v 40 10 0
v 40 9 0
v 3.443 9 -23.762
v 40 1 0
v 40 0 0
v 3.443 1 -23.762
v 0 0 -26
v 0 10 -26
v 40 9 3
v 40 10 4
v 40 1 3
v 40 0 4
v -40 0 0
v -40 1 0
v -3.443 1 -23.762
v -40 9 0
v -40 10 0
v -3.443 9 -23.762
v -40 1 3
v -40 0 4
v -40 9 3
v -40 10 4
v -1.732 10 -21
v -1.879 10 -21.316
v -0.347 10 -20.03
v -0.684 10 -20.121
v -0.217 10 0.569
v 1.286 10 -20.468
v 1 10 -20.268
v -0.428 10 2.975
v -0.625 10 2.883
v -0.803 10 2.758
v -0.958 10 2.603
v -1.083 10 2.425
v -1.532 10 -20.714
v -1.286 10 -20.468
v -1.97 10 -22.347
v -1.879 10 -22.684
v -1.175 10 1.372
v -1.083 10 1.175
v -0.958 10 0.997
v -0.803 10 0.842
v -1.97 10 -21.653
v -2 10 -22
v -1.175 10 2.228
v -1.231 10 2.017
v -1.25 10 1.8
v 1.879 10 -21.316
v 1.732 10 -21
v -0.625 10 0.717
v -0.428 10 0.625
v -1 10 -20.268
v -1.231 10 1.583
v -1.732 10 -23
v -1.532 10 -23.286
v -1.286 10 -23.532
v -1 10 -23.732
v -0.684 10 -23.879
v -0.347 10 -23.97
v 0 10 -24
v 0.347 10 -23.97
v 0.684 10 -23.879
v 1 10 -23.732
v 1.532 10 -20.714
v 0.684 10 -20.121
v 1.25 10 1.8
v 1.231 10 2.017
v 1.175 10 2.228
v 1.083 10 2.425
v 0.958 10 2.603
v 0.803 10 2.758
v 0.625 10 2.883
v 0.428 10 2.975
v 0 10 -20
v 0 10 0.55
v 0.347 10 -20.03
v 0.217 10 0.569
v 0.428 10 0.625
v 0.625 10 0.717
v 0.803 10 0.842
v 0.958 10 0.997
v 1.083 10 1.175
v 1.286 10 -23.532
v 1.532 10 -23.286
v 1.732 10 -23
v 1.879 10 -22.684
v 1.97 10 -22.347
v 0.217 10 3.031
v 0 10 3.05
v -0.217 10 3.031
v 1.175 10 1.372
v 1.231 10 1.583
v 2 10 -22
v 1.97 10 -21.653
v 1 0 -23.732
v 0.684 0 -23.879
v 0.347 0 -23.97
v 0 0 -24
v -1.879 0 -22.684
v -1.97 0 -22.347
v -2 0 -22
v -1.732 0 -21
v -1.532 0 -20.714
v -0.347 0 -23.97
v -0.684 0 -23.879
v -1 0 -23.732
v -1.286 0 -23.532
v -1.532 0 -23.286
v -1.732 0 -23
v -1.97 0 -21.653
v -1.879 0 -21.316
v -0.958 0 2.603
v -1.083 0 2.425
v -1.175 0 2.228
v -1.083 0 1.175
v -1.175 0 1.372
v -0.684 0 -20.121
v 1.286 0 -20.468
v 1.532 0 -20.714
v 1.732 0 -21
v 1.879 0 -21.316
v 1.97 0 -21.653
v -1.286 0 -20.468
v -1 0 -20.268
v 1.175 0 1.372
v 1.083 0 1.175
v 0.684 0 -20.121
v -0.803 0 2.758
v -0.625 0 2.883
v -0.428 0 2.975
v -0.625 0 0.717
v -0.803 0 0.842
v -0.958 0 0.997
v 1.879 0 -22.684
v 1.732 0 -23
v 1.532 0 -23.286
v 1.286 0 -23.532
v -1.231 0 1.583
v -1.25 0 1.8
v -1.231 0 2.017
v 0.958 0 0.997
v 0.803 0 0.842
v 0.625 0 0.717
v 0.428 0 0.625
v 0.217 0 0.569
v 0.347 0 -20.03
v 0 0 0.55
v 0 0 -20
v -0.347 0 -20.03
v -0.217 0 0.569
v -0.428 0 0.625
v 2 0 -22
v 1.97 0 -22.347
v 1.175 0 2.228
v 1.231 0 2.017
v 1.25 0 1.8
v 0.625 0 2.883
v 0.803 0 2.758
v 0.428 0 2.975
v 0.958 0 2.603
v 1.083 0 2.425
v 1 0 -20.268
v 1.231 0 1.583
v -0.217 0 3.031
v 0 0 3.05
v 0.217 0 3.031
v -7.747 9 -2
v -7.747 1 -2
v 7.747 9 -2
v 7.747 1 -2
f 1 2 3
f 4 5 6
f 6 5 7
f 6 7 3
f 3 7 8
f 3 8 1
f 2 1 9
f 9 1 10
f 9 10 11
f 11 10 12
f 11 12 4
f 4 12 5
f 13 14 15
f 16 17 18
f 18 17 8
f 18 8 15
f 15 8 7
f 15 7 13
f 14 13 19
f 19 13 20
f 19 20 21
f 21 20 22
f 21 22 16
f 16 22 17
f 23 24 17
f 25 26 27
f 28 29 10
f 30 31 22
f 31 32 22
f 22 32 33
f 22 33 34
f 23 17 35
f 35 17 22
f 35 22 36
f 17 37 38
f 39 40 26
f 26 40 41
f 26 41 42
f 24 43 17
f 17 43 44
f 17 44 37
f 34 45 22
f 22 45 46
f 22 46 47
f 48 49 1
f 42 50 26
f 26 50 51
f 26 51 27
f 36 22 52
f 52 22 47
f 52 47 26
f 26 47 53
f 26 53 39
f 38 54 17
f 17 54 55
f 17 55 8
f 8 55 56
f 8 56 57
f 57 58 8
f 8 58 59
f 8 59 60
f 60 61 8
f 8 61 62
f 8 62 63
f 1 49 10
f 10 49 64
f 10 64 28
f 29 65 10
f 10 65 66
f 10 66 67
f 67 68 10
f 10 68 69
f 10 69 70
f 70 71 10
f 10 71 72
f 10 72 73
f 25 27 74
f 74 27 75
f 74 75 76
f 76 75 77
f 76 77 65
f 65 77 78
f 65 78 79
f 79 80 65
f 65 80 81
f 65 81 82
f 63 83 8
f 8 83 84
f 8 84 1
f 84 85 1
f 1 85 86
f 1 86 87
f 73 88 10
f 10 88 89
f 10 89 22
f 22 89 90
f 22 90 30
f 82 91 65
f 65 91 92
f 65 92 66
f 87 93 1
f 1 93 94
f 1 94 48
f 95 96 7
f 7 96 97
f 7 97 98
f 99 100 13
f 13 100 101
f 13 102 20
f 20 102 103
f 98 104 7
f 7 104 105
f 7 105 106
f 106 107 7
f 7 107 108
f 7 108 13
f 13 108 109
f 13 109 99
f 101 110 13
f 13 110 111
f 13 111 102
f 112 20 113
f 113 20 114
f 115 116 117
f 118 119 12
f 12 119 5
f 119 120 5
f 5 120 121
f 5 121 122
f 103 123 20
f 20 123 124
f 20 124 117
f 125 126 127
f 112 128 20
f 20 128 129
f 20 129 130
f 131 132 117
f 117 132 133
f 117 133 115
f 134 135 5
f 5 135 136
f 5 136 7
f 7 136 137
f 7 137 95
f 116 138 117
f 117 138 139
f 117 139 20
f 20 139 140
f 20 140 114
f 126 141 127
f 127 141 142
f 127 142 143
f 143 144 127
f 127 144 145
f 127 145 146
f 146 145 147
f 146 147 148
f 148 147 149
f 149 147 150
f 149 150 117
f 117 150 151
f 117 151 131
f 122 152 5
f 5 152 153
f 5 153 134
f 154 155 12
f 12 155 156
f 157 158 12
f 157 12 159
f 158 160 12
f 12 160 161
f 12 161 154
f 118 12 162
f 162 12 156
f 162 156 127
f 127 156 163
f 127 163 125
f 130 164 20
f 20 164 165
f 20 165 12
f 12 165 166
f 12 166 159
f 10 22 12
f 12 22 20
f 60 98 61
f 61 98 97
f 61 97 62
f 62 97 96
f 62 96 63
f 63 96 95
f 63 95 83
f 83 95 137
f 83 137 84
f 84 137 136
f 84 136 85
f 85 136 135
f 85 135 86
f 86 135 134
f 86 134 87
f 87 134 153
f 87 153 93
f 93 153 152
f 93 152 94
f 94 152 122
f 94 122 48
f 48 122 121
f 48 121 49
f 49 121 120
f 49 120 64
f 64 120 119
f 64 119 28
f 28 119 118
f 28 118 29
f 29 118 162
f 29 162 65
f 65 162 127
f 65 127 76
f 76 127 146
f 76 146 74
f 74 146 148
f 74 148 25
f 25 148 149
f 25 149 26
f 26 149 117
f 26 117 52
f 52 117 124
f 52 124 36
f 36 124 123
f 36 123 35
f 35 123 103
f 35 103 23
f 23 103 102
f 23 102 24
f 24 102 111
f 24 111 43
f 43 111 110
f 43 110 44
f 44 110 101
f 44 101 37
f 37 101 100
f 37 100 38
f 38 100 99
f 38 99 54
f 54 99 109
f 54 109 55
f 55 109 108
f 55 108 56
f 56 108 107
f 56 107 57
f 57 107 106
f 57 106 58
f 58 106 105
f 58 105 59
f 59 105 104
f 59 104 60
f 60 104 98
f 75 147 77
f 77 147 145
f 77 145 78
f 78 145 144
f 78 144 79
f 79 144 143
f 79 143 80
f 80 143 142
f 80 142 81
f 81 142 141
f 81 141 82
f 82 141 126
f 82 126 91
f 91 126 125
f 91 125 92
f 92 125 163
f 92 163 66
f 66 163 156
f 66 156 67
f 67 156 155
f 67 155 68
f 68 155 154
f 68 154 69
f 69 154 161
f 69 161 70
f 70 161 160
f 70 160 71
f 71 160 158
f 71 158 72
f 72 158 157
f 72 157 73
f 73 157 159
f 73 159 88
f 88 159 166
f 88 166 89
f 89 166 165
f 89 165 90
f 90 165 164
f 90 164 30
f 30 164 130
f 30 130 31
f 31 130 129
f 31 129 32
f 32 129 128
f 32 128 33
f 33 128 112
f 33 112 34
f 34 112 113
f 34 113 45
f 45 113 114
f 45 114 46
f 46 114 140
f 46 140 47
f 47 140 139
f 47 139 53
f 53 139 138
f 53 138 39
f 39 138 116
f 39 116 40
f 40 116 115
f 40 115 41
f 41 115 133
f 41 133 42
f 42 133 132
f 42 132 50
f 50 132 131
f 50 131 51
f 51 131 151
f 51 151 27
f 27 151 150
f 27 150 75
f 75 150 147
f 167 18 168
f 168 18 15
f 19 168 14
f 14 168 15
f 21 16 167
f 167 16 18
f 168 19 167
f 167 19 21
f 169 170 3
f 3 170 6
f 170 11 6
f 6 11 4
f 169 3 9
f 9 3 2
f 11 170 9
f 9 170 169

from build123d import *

# Parameters (mm, degrees)
SKETCH1_R           = 2
SKETCH1_R_2         = 1.25
BOSS_EXTRUDE1_DEPTH = 10
CUT_EXTRUDE1_DEPTH  = 8


with BuildPart() as part:
    # Sketch1 → Boss-Extrude1 (new body)
    with BuildSketch(Plane(origin=(0, 0, 0), x_dir=(1, 0, 0), z_dir=(0, 1, 0))):
        Polygon((0, 26), (-40, 0), (-40, -4), (40, -4), (40, 0), align=None)
        with Locations((0, 22)):
            Circle(SKETCH1_R, mode=Mode.SUBTRACT)
        with Locations((0, -1.8)):
            Circle(SKETCH1_R_2, mode=Mode.SUBTRACT)
    extrude(amount=BOSS_EXTRUDE1_DEPTH)

    # Sketch2 → Cut-Extrude1 (cut)
    with BuildSketch(Plane(origin=(0, 9, 0), x_dir=(1, 0, 0), z_dir=(0, 1, 0))):
        Polygon((-3, 26), (-7.746877636, 2), (-40, -3), (-40, 3.063809347), align=None)
    cut_extrude1 = extrude(amount=-CUT_EXTRUDE1_DEPTH, mode=Mode.SUBTRACT)

    # Mirror1: Cut-Extrude1 across plane
    add(cut_extrude1.mirror(Plane(origin=(0, 0, 0), x_dir=(0, 0, 1), z_dir=(1, 0, 0))), mode=Mode.SUBTRACT)


solid = part.part
